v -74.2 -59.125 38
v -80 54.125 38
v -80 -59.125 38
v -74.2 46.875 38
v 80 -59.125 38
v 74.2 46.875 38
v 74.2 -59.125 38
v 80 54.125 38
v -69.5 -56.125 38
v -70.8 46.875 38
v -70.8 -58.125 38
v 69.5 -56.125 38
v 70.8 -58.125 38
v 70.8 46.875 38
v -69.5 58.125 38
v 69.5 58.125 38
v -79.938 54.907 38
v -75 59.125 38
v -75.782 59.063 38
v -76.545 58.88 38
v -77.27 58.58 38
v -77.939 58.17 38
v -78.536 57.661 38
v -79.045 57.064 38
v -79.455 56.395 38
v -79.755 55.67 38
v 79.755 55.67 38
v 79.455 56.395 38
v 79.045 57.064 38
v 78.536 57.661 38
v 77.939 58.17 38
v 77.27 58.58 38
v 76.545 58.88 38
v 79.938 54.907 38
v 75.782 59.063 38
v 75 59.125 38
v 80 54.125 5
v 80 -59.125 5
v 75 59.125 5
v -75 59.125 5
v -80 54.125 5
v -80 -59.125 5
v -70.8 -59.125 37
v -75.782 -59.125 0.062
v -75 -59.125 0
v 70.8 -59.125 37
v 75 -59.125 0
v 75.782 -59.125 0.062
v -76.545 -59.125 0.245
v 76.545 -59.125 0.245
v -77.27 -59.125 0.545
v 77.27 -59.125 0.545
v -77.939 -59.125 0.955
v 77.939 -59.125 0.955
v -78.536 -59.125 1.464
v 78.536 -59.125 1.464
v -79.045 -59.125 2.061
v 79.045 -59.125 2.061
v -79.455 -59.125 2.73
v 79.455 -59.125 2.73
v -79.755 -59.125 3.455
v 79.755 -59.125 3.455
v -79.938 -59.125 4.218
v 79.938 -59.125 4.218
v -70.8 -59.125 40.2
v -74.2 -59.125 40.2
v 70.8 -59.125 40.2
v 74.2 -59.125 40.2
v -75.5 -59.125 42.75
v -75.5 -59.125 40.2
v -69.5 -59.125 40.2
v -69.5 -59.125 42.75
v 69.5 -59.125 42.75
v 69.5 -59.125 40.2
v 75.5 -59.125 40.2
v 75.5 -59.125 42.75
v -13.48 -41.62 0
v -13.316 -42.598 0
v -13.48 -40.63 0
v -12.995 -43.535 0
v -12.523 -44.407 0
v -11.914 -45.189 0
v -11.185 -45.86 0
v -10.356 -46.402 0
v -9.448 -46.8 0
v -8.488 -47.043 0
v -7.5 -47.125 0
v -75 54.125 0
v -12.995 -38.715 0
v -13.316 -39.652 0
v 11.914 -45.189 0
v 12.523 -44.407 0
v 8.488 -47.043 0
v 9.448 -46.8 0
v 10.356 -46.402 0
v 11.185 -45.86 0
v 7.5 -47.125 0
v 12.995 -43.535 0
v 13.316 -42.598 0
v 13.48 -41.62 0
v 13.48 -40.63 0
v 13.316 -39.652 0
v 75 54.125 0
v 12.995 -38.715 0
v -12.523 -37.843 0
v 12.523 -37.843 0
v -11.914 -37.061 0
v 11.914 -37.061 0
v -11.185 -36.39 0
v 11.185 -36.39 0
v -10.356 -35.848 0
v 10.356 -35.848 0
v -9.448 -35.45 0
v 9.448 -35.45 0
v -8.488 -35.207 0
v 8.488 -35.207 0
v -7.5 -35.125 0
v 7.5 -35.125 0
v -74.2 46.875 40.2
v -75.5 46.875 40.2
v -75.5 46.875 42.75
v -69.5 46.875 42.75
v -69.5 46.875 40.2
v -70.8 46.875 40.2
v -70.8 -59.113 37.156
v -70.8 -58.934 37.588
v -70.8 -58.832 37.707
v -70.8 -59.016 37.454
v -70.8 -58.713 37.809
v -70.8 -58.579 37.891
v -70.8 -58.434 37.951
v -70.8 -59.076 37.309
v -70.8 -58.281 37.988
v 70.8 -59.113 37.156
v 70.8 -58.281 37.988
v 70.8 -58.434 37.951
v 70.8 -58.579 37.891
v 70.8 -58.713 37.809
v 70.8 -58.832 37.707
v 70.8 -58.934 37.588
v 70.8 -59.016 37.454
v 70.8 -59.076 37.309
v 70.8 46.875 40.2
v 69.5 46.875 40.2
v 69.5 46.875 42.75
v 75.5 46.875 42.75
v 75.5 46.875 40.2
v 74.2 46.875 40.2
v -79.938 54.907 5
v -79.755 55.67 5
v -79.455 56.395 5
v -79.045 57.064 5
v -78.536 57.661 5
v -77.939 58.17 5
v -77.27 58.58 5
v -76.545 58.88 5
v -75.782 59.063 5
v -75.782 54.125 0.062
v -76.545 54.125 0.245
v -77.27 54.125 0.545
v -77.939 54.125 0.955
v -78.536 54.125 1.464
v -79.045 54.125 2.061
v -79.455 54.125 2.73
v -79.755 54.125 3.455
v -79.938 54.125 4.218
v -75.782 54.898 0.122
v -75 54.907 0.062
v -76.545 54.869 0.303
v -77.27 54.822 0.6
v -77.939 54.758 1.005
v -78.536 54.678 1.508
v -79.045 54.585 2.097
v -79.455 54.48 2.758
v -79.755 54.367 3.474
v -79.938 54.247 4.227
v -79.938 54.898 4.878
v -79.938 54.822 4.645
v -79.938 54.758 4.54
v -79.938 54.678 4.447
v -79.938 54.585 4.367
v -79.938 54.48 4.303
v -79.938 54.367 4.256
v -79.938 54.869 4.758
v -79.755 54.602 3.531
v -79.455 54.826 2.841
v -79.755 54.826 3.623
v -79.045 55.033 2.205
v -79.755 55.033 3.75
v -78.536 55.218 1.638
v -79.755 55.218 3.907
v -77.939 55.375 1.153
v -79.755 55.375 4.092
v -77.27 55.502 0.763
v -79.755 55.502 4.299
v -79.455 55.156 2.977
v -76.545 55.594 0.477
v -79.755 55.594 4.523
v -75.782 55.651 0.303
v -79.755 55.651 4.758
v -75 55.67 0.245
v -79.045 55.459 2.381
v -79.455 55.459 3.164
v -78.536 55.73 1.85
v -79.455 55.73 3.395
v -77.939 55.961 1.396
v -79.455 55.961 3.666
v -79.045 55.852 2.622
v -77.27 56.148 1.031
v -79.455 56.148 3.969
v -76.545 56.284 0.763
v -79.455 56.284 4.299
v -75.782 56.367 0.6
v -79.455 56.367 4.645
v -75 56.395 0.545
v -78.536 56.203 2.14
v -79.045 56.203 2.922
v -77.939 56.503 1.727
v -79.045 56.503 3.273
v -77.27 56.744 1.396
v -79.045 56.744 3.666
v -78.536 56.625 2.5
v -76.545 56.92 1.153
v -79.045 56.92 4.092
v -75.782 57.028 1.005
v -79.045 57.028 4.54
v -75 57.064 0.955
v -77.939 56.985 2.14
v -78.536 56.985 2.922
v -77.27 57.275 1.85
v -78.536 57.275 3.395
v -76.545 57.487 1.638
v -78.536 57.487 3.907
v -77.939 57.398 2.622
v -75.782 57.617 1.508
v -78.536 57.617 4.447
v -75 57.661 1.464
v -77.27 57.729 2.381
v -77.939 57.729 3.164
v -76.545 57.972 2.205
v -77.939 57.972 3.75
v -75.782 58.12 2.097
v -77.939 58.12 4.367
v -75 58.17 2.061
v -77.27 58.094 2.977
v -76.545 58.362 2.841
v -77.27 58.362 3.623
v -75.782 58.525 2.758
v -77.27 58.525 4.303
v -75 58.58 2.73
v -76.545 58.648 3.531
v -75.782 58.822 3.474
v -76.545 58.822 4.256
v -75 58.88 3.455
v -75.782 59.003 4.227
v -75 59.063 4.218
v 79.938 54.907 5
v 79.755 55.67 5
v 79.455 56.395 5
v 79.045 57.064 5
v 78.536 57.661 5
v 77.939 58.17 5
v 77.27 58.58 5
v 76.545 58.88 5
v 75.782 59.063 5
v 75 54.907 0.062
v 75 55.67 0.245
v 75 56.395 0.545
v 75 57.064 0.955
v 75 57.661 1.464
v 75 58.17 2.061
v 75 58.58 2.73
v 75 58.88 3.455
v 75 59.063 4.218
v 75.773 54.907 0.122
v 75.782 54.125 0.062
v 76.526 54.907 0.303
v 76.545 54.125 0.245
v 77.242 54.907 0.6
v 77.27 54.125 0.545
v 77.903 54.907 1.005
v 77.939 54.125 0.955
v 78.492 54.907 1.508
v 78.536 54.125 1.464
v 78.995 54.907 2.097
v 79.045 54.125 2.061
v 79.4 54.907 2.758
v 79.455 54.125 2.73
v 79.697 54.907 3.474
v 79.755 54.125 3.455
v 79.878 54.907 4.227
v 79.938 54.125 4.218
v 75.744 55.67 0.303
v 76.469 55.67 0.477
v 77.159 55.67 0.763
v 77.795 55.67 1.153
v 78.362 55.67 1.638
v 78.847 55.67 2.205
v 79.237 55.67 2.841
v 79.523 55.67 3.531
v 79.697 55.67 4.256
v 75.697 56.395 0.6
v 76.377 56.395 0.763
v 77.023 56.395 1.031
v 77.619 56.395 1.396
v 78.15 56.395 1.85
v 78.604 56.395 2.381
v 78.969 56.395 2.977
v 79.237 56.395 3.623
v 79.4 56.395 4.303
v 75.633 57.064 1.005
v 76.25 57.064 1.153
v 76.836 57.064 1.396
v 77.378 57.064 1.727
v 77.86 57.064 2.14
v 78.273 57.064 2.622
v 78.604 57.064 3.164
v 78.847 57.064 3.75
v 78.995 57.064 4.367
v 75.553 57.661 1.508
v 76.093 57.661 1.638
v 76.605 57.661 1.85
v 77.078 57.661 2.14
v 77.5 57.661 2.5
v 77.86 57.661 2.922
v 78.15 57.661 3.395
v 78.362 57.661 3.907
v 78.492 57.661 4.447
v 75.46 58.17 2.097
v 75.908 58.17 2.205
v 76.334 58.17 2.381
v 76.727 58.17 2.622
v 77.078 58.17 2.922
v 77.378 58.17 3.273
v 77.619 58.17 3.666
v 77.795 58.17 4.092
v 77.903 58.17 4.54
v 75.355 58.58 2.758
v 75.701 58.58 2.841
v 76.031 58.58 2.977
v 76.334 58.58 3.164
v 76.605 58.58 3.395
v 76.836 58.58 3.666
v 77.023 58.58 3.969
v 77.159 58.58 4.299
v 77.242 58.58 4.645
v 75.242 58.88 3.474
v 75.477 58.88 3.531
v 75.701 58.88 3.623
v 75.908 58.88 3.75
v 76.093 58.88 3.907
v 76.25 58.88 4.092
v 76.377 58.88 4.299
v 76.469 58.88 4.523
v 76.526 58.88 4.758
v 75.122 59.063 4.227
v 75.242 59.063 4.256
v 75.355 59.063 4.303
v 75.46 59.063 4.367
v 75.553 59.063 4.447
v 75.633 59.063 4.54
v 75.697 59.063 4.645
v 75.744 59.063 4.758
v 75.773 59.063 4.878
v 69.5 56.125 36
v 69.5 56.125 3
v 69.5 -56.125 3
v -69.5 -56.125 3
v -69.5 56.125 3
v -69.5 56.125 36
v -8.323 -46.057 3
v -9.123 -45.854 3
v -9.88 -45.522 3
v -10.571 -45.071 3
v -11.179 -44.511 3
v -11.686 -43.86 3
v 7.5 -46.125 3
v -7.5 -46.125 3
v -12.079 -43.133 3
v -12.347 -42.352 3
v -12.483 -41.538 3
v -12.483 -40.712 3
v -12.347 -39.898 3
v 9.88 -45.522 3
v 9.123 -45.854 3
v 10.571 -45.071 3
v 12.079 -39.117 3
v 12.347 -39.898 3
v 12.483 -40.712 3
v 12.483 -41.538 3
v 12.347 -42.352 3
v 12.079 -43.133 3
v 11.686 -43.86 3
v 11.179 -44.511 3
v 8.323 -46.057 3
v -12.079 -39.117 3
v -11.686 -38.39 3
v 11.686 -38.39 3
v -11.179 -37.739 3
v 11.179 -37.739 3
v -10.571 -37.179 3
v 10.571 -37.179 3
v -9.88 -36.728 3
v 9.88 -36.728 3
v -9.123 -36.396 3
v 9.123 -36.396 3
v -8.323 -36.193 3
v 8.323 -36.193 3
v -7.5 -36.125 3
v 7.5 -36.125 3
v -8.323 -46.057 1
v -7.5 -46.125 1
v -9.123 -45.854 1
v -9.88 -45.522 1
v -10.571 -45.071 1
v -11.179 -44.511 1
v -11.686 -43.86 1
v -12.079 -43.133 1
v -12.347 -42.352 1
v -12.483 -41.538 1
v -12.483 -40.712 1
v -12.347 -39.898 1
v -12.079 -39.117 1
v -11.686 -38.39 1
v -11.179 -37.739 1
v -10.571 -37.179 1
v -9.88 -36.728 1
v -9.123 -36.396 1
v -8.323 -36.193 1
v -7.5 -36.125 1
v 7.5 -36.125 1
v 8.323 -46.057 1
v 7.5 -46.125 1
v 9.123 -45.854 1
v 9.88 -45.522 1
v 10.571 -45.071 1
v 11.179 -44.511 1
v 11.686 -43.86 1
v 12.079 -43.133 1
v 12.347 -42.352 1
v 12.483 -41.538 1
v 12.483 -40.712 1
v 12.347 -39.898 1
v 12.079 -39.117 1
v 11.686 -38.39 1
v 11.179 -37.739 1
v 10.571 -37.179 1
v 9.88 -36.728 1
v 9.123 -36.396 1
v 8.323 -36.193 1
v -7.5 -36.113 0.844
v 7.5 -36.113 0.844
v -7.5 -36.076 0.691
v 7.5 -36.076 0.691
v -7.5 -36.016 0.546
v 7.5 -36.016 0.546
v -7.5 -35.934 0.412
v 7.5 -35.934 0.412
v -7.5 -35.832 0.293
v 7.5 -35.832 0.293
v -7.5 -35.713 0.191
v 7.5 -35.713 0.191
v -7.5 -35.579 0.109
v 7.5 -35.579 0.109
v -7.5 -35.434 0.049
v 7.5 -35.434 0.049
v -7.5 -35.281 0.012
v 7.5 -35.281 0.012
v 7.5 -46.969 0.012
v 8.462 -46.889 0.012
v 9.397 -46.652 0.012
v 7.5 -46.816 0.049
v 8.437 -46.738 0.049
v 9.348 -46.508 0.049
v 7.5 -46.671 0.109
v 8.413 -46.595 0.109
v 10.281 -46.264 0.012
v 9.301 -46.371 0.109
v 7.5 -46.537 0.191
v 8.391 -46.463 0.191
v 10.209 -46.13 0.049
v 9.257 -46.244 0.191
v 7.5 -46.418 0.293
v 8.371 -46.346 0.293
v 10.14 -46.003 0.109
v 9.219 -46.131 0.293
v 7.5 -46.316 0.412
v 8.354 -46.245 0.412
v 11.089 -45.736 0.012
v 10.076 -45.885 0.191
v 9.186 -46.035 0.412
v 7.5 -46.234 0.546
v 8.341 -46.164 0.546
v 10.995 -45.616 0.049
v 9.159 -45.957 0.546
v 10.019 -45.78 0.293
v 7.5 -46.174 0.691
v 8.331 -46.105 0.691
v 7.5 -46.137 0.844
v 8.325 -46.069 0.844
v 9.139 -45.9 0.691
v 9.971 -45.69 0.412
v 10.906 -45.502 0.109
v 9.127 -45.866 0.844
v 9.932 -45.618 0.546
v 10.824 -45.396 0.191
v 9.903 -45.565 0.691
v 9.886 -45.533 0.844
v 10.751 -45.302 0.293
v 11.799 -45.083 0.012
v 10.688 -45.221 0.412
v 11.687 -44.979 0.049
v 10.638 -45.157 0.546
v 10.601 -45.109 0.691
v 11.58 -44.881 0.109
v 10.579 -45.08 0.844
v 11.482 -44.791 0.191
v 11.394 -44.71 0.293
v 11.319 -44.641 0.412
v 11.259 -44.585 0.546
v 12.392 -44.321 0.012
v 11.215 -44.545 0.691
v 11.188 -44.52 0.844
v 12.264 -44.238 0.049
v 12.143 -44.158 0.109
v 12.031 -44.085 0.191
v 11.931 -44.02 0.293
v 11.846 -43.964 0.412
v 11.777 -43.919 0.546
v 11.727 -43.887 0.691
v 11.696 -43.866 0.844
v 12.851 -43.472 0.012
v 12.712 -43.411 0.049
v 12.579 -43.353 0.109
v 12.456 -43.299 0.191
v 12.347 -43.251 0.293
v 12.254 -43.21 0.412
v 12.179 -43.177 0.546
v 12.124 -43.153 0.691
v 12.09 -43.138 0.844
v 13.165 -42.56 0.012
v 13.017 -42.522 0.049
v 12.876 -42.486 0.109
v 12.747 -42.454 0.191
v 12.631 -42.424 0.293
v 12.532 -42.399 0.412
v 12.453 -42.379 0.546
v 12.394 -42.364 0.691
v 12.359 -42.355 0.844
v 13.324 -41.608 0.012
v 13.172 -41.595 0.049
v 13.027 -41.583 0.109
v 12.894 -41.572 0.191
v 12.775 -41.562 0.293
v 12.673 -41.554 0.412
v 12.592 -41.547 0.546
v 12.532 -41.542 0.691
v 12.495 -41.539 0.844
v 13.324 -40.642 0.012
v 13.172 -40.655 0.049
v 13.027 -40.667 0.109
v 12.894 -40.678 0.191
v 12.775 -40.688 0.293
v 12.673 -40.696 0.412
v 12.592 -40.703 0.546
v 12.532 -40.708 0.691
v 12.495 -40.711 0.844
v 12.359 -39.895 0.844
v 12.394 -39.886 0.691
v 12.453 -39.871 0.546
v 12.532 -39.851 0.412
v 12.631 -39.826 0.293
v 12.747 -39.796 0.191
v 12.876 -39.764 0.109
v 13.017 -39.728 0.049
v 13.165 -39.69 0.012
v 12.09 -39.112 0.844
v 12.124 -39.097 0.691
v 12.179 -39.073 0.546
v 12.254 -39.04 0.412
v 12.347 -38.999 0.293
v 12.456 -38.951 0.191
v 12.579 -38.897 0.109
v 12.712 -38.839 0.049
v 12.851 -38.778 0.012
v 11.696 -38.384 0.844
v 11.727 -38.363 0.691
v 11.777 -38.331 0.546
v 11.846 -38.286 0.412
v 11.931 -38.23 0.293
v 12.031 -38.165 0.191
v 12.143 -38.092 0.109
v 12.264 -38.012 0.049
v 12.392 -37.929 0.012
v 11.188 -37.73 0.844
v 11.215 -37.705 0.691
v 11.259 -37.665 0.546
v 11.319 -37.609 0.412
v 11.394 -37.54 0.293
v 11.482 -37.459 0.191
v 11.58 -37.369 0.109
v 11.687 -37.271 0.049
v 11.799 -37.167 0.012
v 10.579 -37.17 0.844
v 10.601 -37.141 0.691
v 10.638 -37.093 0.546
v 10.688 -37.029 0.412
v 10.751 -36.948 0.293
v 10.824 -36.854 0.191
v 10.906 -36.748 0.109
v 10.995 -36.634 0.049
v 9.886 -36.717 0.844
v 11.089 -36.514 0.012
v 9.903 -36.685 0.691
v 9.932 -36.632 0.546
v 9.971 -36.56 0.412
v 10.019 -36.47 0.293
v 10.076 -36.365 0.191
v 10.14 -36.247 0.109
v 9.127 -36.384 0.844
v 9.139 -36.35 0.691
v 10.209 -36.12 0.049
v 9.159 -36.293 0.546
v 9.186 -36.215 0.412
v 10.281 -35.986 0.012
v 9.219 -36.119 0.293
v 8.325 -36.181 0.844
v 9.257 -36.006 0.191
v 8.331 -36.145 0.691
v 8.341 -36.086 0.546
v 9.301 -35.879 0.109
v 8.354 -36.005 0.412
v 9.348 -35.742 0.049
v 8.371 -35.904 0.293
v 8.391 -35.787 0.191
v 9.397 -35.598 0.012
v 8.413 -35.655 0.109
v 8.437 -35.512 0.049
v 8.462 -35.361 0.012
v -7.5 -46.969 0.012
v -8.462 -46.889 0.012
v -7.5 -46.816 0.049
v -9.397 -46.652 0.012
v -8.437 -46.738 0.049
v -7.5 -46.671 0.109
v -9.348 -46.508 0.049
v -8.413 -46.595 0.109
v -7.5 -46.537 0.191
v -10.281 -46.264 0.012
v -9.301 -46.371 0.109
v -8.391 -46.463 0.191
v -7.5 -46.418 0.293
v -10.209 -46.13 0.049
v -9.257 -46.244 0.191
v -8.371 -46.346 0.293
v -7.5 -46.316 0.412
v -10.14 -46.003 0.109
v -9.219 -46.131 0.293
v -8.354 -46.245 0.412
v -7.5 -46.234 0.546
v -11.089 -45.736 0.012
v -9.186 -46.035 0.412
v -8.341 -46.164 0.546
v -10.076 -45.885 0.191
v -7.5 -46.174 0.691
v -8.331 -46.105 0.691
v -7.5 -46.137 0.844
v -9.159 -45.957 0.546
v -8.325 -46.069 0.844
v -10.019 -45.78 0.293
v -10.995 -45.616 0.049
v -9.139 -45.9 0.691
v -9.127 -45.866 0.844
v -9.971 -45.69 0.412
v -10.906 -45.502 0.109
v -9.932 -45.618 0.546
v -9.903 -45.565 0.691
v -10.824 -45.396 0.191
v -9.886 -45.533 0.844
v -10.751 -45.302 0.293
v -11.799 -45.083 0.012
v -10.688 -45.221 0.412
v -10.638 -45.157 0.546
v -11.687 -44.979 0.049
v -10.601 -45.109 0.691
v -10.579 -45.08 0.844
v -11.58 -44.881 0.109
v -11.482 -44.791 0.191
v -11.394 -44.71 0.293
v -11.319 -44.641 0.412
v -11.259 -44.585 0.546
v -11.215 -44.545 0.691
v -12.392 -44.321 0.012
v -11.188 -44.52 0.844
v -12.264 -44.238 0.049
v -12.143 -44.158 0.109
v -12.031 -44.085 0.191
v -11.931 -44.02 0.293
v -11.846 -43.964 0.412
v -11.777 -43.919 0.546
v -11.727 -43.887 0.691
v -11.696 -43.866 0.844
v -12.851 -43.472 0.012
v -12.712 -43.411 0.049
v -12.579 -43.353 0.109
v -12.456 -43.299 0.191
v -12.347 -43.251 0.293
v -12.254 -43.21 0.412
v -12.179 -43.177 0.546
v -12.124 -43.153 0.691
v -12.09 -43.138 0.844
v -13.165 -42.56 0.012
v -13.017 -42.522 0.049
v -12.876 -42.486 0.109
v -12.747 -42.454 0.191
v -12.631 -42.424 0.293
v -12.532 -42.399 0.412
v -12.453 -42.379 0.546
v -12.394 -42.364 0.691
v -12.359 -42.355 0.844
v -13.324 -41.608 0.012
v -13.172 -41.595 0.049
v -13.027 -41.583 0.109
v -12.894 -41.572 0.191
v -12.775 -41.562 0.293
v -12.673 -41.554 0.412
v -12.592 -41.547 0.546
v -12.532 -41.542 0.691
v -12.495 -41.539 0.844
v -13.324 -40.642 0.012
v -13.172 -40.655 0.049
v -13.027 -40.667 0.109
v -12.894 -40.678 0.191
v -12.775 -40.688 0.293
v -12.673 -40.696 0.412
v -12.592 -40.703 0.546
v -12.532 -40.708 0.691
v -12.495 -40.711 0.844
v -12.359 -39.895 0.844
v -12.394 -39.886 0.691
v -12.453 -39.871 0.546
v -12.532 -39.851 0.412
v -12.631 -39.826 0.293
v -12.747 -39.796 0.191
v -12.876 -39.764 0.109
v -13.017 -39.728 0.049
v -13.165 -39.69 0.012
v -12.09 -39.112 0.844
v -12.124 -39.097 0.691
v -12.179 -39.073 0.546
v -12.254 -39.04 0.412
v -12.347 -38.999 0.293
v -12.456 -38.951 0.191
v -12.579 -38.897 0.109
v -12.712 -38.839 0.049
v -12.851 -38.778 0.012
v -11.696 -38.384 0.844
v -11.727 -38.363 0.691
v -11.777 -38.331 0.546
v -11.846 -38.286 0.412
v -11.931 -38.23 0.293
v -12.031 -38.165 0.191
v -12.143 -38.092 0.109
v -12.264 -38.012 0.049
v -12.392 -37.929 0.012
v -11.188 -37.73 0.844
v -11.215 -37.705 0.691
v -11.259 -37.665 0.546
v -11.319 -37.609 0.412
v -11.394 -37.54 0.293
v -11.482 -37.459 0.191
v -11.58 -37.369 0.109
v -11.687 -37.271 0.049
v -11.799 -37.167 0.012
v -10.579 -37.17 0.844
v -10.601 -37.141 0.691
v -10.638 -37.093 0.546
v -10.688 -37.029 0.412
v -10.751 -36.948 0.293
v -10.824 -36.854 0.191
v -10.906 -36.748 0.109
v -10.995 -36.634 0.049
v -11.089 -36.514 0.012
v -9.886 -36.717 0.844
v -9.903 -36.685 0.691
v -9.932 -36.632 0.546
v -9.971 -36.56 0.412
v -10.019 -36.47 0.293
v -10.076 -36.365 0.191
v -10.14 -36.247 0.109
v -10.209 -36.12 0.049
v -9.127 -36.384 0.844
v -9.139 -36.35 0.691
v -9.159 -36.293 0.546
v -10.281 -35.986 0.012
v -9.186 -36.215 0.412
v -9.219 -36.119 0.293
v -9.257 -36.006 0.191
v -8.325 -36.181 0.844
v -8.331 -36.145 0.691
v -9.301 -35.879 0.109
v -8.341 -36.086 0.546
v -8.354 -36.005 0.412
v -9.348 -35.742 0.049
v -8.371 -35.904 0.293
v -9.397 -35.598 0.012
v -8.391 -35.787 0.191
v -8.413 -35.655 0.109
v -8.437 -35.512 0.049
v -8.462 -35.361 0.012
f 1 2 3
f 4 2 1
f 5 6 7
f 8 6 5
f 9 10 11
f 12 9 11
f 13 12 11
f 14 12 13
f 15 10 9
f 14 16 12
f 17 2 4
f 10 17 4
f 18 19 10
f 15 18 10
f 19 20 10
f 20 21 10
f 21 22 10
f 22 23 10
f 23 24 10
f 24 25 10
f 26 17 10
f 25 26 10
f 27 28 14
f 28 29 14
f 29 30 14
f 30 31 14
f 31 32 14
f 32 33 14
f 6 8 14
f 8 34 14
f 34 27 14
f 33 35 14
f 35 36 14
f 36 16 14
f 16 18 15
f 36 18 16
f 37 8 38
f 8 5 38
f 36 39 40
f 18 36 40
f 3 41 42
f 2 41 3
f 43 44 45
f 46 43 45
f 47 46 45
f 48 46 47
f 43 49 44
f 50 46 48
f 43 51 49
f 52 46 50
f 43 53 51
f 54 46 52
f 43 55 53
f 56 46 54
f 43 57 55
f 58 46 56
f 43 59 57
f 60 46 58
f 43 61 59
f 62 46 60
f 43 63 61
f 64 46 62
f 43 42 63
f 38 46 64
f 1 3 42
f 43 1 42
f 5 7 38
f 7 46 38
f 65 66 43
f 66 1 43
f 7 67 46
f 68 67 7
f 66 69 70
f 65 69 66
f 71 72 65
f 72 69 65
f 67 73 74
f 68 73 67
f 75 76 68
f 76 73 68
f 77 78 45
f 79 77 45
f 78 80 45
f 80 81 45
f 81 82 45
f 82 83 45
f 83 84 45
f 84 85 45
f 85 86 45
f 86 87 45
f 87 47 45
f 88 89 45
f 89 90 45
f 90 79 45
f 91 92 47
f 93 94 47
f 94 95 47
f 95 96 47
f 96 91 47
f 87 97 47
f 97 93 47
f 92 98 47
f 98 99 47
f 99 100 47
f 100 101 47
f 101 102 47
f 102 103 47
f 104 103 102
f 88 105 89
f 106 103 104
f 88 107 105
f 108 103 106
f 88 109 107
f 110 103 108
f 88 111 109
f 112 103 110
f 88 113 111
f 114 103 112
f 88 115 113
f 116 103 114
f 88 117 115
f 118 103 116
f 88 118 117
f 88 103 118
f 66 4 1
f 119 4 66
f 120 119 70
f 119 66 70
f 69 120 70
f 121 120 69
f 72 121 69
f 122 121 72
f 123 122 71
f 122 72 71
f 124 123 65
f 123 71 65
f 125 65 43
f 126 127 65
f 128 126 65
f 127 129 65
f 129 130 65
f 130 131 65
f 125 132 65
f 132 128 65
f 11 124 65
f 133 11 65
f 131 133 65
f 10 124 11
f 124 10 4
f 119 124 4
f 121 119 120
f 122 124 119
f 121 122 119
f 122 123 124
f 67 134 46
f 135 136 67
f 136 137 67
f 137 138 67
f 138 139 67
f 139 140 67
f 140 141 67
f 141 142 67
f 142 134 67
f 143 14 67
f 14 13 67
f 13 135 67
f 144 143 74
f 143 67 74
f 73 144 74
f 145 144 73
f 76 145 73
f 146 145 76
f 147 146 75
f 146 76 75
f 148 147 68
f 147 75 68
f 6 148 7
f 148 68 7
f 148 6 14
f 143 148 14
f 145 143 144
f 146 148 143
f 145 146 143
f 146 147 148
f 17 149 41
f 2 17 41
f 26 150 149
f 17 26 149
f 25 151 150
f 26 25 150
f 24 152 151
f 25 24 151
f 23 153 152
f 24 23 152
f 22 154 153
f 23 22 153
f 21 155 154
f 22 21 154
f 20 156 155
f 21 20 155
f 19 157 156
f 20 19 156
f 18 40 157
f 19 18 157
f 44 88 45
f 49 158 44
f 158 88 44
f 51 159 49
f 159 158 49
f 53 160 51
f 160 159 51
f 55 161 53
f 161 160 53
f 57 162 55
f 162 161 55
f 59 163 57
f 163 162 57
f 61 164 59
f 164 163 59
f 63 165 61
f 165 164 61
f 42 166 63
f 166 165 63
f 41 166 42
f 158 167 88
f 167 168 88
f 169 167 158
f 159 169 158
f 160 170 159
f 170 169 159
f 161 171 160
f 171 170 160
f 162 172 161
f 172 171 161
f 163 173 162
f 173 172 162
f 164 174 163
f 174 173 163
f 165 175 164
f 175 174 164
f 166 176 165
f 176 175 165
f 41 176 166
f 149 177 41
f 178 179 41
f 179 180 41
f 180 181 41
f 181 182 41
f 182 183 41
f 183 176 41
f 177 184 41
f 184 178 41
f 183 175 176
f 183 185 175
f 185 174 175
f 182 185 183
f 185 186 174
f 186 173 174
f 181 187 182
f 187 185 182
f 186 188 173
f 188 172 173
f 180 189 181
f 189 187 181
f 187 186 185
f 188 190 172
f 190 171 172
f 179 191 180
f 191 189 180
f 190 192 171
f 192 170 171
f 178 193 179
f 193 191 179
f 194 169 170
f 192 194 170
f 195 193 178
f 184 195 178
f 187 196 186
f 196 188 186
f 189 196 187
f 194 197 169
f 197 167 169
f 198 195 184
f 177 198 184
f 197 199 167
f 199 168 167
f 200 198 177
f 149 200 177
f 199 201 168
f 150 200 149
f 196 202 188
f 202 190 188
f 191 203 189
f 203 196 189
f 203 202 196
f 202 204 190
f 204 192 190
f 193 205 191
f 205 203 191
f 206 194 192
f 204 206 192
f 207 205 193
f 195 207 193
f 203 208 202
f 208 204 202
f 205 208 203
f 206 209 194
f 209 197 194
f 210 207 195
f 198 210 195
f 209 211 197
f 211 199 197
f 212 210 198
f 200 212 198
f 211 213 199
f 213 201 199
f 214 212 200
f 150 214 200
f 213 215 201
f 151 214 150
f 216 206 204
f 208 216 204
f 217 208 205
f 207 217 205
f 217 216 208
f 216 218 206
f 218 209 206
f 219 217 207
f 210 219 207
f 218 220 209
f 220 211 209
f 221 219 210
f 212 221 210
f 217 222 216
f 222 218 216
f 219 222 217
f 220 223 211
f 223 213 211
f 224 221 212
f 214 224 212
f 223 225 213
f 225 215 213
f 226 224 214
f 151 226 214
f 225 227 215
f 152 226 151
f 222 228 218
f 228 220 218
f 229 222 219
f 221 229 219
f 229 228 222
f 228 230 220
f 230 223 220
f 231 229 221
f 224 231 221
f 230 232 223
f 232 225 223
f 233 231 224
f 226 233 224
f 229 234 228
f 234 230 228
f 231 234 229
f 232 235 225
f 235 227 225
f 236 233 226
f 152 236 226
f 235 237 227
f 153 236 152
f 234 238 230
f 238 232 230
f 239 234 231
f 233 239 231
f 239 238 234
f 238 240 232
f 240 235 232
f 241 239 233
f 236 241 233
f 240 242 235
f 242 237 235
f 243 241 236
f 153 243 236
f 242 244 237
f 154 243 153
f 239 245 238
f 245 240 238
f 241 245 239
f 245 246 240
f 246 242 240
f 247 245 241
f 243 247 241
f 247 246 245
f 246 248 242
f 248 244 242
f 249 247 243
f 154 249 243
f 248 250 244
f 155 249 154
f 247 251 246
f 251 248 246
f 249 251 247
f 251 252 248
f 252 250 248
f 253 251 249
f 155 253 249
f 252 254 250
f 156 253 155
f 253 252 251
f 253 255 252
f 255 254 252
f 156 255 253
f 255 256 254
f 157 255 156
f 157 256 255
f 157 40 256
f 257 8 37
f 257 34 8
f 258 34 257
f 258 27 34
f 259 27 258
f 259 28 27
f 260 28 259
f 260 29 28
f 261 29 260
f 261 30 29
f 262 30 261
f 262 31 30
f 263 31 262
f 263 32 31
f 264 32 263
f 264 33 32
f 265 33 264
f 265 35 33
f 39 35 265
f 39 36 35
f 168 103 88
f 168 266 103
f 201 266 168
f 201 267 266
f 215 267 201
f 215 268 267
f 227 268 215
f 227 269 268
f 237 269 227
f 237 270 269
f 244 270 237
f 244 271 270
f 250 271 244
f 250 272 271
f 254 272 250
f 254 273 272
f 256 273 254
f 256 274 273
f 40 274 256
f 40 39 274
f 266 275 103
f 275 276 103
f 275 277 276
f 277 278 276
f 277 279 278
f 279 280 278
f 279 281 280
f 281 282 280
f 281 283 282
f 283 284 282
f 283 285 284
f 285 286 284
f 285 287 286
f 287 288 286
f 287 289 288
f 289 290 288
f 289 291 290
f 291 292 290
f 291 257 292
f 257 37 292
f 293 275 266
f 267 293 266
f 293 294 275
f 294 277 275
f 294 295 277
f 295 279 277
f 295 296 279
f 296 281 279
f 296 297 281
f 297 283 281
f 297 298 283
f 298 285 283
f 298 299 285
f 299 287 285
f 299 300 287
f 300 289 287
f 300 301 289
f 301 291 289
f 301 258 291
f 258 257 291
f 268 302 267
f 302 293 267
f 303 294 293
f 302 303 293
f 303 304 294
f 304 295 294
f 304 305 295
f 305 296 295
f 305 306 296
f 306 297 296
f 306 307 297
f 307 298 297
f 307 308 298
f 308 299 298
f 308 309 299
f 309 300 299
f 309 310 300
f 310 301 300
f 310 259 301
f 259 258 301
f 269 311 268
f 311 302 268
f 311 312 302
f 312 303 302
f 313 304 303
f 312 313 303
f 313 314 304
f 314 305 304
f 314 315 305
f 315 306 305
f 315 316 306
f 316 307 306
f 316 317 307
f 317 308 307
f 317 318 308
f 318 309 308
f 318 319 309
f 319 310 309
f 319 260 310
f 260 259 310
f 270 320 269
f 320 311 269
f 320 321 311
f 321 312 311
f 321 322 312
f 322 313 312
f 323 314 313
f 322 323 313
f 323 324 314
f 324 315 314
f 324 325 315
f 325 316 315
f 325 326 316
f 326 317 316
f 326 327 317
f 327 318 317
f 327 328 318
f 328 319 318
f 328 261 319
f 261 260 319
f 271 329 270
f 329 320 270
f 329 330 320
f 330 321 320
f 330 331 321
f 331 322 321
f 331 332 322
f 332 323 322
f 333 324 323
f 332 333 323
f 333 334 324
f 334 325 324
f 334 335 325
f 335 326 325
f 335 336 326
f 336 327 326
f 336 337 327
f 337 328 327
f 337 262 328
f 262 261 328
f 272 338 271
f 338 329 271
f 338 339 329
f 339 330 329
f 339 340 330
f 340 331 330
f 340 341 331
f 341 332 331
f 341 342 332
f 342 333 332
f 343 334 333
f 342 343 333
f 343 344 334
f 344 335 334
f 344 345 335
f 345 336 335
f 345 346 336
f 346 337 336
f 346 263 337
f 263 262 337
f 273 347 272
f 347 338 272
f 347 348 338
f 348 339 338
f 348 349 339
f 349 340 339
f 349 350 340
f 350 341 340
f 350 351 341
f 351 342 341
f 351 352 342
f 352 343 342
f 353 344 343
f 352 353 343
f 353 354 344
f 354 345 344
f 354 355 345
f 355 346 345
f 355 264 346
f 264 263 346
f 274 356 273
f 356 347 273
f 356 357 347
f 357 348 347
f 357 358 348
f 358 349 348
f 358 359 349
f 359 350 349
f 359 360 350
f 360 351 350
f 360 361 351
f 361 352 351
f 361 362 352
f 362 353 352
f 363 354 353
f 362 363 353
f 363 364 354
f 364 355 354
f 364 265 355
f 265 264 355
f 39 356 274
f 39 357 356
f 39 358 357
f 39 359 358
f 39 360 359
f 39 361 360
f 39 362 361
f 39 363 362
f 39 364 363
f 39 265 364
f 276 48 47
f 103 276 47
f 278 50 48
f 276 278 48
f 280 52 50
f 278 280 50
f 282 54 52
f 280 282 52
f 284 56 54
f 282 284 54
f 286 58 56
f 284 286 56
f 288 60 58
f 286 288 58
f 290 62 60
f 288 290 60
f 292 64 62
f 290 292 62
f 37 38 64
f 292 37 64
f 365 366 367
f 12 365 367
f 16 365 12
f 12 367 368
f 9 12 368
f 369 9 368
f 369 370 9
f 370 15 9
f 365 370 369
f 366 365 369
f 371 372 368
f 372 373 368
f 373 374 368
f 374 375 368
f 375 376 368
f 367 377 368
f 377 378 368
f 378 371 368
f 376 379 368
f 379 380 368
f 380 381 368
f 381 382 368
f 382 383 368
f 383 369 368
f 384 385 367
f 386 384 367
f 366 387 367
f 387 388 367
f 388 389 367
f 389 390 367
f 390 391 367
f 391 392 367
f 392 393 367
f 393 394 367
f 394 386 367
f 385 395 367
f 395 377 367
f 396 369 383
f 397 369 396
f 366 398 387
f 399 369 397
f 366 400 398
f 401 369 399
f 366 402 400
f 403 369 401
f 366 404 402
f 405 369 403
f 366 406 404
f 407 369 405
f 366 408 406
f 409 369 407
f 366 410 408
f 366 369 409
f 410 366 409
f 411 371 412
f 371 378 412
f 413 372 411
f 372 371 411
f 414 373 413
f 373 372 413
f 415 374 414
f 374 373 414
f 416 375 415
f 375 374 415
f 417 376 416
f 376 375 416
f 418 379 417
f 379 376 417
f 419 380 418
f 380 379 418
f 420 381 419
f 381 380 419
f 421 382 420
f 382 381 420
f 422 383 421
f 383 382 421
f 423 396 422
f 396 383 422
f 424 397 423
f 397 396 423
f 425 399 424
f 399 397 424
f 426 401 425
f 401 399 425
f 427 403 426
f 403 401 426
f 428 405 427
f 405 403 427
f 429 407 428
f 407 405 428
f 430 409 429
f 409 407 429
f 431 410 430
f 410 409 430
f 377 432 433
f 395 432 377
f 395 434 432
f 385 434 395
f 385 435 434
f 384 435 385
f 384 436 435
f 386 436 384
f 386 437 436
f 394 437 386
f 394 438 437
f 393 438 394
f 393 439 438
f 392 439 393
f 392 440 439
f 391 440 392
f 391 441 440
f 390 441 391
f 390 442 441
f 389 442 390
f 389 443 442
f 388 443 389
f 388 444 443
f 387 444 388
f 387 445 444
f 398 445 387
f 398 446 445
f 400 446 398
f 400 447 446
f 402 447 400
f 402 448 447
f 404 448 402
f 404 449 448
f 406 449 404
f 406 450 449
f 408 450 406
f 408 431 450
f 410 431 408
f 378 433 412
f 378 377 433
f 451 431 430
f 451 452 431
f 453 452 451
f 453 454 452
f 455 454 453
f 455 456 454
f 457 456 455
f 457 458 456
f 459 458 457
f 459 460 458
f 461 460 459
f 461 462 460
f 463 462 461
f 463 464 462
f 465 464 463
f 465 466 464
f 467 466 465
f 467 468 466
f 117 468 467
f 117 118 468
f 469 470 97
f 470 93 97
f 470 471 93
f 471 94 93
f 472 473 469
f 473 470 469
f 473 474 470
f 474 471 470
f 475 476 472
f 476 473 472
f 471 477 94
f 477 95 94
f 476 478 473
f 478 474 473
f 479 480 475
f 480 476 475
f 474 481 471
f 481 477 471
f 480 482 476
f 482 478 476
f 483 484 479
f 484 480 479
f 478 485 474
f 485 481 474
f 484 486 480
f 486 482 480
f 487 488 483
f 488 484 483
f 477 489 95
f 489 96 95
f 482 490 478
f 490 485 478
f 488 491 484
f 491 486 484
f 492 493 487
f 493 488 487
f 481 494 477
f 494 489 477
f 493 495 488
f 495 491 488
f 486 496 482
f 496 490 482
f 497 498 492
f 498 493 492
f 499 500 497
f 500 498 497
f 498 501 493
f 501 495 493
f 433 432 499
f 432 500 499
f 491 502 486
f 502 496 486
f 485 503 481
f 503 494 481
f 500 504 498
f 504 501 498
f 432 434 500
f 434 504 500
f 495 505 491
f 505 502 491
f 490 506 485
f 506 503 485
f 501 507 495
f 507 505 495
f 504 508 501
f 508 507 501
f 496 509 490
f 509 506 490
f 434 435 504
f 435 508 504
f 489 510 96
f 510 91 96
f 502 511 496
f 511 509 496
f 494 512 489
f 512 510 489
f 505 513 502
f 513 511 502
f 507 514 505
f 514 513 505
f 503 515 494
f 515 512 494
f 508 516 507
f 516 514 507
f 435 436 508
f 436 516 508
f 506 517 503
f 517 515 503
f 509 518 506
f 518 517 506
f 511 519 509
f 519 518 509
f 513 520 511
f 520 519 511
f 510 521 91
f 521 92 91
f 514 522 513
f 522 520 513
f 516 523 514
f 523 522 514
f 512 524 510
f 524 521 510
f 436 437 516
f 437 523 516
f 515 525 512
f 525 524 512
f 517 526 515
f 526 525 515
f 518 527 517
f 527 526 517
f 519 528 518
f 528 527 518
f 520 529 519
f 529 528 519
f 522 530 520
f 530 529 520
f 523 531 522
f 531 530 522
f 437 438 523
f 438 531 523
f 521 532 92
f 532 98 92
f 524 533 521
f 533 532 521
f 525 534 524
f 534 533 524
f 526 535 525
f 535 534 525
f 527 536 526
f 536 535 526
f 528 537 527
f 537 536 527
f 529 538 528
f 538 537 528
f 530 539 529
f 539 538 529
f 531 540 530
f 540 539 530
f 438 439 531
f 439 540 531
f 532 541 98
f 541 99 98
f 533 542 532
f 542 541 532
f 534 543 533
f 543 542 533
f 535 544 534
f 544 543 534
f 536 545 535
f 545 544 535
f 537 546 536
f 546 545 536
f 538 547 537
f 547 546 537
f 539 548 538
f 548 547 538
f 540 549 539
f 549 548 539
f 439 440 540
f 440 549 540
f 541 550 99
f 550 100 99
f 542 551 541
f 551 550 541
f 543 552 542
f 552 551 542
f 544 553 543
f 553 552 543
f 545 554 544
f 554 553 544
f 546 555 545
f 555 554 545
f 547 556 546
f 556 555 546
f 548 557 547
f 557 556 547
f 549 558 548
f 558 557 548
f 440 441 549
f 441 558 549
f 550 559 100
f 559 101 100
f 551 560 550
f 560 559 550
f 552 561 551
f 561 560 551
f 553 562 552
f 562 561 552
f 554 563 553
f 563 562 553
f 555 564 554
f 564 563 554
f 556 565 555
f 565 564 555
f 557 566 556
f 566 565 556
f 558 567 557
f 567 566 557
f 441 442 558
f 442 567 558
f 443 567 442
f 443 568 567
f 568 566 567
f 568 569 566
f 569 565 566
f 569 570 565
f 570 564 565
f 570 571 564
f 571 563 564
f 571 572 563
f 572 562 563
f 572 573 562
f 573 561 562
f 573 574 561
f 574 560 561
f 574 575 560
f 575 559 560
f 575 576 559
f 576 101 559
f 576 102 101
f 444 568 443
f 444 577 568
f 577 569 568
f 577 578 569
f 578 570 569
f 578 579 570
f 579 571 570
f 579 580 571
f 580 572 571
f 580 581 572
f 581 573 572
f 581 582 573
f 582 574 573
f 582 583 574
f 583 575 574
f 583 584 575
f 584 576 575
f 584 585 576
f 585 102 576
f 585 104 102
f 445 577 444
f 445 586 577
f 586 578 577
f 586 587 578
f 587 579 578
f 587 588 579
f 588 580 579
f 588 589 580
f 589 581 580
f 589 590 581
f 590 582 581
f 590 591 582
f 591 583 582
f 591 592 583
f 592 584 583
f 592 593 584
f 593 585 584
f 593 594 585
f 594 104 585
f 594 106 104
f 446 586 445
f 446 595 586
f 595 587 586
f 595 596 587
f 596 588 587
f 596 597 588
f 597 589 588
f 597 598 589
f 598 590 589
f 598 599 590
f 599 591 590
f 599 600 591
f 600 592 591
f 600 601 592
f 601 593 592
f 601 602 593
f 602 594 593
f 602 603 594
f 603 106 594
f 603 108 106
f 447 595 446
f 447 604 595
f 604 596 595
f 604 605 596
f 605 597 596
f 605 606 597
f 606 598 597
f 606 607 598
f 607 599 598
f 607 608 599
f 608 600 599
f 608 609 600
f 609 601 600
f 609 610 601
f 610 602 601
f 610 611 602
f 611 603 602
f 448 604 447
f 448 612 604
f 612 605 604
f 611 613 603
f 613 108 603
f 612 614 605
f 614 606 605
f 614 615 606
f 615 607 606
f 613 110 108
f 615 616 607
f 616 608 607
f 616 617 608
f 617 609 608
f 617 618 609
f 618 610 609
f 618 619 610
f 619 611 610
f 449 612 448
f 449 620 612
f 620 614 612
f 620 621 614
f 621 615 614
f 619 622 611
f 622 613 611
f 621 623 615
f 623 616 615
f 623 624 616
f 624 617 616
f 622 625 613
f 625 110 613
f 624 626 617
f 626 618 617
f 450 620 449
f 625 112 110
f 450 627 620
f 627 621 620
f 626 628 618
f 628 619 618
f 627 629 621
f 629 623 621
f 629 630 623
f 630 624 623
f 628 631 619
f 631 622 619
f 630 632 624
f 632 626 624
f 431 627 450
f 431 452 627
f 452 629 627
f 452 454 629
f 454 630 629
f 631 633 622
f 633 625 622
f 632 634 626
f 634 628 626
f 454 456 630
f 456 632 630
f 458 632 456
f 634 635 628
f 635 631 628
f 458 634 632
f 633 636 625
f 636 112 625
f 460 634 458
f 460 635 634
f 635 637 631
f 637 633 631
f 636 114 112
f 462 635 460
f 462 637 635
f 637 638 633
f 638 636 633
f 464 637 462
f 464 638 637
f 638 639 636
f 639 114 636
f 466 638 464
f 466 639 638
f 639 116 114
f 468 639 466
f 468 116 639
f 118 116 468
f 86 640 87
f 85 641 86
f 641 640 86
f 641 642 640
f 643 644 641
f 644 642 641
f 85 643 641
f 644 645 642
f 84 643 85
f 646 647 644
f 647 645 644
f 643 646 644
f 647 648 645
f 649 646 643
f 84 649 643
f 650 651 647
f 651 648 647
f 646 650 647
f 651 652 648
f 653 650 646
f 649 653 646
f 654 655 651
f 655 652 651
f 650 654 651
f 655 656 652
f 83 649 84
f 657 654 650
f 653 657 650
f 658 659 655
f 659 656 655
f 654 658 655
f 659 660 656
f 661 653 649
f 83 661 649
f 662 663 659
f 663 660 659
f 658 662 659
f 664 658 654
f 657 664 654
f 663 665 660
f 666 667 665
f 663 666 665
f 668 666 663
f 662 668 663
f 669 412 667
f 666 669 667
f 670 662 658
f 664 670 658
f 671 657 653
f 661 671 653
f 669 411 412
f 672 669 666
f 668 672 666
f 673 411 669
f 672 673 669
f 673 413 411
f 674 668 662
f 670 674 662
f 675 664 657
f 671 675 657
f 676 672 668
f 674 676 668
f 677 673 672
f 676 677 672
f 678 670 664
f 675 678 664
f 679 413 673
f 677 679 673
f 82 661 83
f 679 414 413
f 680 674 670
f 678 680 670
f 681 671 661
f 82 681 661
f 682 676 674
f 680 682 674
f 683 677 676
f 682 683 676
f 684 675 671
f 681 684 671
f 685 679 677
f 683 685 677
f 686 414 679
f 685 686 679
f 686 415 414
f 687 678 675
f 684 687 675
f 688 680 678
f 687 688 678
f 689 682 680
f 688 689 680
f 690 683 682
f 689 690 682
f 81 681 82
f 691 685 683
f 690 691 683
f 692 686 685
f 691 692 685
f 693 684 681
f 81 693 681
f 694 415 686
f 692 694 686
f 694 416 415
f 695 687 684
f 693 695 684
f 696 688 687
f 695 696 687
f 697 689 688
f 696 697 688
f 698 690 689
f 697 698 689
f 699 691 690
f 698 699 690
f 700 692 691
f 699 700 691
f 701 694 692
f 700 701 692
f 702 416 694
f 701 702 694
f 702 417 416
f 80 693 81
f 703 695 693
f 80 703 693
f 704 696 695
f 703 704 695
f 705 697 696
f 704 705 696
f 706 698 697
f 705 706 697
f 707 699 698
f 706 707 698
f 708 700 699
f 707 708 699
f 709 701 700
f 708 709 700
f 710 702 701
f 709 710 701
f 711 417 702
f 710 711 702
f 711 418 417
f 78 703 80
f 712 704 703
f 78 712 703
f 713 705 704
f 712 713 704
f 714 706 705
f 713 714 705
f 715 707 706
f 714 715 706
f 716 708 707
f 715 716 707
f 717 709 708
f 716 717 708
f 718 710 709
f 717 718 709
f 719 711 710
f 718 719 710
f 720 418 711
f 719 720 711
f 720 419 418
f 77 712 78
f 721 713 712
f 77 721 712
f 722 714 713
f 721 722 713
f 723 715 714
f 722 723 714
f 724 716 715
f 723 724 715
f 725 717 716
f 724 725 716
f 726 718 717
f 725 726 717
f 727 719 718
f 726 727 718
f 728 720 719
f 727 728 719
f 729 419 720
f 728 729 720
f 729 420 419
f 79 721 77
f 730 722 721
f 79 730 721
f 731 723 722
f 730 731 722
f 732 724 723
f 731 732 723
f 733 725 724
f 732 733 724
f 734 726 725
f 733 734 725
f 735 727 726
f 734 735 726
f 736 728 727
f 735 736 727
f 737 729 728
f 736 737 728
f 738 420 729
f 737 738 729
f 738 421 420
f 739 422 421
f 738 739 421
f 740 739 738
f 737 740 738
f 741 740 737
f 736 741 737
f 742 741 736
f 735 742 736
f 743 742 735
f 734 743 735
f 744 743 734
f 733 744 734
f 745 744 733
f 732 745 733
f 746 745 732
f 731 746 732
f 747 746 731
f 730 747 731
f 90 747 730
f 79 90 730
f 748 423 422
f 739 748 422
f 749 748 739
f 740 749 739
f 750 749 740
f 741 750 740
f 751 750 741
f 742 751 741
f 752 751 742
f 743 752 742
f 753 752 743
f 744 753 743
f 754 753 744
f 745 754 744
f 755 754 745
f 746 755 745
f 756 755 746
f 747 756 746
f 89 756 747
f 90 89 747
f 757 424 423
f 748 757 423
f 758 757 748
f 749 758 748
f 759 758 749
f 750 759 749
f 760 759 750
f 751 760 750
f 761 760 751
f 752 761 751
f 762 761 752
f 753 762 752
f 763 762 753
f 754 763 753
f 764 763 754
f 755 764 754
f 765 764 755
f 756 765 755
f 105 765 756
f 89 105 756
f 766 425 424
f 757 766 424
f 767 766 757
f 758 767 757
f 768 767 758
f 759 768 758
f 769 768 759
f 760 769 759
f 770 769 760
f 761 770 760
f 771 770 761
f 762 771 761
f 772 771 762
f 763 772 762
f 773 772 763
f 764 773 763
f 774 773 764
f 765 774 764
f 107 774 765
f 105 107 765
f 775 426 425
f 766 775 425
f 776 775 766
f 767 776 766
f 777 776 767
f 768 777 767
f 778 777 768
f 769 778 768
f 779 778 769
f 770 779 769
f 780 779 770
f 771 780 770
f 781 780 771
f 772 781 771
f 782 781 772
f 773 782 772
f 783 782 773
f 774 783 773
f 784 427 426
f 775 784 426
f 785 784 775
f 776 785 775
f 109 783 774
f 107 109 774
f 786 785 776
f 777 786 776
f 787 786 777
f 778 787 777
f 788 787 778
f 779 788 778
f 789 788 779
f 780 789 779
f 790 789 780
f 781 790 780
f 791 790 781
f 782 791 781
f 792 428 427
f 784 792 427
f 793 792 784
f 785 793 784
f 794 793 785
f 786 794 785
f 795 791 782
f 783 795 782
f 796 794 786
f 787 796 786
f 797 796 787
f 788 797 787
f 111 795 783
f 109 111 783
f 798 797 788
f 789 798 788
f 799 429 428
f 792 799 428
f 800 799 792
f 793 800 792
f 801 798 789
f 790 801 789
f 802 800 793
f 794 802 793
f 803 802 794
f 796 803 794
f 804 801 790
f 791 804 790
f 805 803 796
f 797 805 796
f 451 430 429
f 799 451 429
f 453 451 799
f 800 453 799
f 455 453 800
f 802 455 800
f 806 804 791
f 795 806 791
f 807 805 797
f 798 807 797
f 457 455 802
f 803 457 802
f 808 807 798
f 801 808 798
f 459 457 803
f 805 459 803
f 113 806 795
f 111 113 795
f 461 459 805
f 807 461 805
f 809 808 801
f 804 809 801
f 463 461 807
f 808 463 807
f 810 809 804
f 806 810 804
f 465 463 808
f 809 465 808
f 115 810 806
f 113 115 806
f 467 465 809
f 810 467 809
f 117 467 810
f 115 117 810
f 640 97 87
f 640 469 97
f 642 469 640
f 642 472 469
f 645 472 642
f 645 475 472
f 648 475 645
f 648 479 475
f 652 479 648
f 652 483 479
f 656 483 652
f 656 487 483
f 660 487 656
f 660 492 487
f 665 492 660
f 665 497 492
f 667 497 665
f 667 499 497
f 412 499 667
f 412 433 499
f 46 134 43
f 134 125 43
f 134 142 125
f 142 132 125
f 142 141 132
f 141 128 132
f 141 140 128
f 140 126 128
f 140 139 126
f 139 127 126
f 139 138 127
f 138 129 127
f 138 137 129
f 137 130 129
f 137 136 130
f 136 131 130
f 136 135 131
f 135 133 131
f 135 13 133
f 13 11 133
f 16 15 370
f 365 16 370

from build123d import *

# Parameters (mm, degrees)
SKETCH1_W       = 160
SKETCH1_H       = 118.25
MAIN_BODY_DEPTH = 38
TRACK_DEPTH     = 106
FILLET_2_R      = 5
SKETCH3_W       = 139
SKETCH3_H       = 112.25
STORAGE_DEPTH   = 35
WIRE_HOLE_DEPTH = 25
FILLET2_R       = 1
CHAMFER1_SIZE   = 2


with BuildPart() as part:
    # Sketch1 → Main Body (new body)
    with BuildSketch(Plane.XY):
        Rectangle(SKETCH1_W, SKETCH1_H)
    extrude(amount=MAIN_BODY_DEPTH)

    # Sketch2 → Track (add)
    with BuildSketch(Plane.XZ.offset(59.125)):
        Polygon((-72.5, 38), (-74.2, 38), (-74.2, 40.2), (-75.5, 40.2), (-75.5, 42.75), (-69.5, 42.75), (-69.5, 40.2), (-70.8, 40.2), (-70.8, 38), align=None)
    track = extrude(amount=-TRACK_DEPTH)

    # Mirror Track: Track across plane
    add(track.mirror(Plane(origin=(0, 0, 0), x_dir=(0, 0, 1), z_dir=(1, 0, 0))))

    # Fillet 2
    fillet_2_edges = [part.edges().sort_by_distance(p)[0] for p in [
        (-80, 0, 0),
        (0, 59.125, 0),
        (80, 0, 0),
        (-80, 59.125, 19),
        (80, 59.125, 19),
    ]]
    fillet(fillet_2_edges, radius=FILLET_2_R)

    # Sketch3 → Storage (cut)
    with BuildSketch(Plane.XY.offset(38)):
        Rectangle(SKETCH3_W, SKETCH3_H)
    extrude(amount=-STORAGE_DEPTH, mode=Mode.SUBTRACT)

    # Sketch4 → Wire Hole (cut)
    with BuildSketch(Plane.XY.offset(3)):
        with BuildLine():
            Line((-7.5, -36.125), (7.5, -36.125))
            ThreePointArc((7.5, -36.125), (12.5, -41.125), (7.5, -46.125))
            Line((7.5, -46.125), (-7.5, -46.125))
            ThreePointArc((-7.5, -46.125), (-12.5, -41.125), (-7.5, -36.125))
        make_face()
    extrude(amount=-WIRE_HOLE_DEPTH, mode=Mode.SUBTRACT)

    # Fillet2
    fillet2_edges = [part.edges().sort_by_distance(p)[0] for p in [
        (-12.5, -41.125, 0),
        (0, -36.125, 0),
        (12.5, -41.125, 0),
        (0, -46.125, 0),
        (0, -59.125, 38),
    ]]
    fillet(fillet2_edges, radius=FILLET2_R)

    # Chamfer1
    chamfer1_edges = [part.edges().sort_by_distance(p)[0] for p in [
        (0, 56.125, 38),
    ]]
    chamfer(chamfer1_edges, length=CHAMFER1_SIZE)


solid = part.part
